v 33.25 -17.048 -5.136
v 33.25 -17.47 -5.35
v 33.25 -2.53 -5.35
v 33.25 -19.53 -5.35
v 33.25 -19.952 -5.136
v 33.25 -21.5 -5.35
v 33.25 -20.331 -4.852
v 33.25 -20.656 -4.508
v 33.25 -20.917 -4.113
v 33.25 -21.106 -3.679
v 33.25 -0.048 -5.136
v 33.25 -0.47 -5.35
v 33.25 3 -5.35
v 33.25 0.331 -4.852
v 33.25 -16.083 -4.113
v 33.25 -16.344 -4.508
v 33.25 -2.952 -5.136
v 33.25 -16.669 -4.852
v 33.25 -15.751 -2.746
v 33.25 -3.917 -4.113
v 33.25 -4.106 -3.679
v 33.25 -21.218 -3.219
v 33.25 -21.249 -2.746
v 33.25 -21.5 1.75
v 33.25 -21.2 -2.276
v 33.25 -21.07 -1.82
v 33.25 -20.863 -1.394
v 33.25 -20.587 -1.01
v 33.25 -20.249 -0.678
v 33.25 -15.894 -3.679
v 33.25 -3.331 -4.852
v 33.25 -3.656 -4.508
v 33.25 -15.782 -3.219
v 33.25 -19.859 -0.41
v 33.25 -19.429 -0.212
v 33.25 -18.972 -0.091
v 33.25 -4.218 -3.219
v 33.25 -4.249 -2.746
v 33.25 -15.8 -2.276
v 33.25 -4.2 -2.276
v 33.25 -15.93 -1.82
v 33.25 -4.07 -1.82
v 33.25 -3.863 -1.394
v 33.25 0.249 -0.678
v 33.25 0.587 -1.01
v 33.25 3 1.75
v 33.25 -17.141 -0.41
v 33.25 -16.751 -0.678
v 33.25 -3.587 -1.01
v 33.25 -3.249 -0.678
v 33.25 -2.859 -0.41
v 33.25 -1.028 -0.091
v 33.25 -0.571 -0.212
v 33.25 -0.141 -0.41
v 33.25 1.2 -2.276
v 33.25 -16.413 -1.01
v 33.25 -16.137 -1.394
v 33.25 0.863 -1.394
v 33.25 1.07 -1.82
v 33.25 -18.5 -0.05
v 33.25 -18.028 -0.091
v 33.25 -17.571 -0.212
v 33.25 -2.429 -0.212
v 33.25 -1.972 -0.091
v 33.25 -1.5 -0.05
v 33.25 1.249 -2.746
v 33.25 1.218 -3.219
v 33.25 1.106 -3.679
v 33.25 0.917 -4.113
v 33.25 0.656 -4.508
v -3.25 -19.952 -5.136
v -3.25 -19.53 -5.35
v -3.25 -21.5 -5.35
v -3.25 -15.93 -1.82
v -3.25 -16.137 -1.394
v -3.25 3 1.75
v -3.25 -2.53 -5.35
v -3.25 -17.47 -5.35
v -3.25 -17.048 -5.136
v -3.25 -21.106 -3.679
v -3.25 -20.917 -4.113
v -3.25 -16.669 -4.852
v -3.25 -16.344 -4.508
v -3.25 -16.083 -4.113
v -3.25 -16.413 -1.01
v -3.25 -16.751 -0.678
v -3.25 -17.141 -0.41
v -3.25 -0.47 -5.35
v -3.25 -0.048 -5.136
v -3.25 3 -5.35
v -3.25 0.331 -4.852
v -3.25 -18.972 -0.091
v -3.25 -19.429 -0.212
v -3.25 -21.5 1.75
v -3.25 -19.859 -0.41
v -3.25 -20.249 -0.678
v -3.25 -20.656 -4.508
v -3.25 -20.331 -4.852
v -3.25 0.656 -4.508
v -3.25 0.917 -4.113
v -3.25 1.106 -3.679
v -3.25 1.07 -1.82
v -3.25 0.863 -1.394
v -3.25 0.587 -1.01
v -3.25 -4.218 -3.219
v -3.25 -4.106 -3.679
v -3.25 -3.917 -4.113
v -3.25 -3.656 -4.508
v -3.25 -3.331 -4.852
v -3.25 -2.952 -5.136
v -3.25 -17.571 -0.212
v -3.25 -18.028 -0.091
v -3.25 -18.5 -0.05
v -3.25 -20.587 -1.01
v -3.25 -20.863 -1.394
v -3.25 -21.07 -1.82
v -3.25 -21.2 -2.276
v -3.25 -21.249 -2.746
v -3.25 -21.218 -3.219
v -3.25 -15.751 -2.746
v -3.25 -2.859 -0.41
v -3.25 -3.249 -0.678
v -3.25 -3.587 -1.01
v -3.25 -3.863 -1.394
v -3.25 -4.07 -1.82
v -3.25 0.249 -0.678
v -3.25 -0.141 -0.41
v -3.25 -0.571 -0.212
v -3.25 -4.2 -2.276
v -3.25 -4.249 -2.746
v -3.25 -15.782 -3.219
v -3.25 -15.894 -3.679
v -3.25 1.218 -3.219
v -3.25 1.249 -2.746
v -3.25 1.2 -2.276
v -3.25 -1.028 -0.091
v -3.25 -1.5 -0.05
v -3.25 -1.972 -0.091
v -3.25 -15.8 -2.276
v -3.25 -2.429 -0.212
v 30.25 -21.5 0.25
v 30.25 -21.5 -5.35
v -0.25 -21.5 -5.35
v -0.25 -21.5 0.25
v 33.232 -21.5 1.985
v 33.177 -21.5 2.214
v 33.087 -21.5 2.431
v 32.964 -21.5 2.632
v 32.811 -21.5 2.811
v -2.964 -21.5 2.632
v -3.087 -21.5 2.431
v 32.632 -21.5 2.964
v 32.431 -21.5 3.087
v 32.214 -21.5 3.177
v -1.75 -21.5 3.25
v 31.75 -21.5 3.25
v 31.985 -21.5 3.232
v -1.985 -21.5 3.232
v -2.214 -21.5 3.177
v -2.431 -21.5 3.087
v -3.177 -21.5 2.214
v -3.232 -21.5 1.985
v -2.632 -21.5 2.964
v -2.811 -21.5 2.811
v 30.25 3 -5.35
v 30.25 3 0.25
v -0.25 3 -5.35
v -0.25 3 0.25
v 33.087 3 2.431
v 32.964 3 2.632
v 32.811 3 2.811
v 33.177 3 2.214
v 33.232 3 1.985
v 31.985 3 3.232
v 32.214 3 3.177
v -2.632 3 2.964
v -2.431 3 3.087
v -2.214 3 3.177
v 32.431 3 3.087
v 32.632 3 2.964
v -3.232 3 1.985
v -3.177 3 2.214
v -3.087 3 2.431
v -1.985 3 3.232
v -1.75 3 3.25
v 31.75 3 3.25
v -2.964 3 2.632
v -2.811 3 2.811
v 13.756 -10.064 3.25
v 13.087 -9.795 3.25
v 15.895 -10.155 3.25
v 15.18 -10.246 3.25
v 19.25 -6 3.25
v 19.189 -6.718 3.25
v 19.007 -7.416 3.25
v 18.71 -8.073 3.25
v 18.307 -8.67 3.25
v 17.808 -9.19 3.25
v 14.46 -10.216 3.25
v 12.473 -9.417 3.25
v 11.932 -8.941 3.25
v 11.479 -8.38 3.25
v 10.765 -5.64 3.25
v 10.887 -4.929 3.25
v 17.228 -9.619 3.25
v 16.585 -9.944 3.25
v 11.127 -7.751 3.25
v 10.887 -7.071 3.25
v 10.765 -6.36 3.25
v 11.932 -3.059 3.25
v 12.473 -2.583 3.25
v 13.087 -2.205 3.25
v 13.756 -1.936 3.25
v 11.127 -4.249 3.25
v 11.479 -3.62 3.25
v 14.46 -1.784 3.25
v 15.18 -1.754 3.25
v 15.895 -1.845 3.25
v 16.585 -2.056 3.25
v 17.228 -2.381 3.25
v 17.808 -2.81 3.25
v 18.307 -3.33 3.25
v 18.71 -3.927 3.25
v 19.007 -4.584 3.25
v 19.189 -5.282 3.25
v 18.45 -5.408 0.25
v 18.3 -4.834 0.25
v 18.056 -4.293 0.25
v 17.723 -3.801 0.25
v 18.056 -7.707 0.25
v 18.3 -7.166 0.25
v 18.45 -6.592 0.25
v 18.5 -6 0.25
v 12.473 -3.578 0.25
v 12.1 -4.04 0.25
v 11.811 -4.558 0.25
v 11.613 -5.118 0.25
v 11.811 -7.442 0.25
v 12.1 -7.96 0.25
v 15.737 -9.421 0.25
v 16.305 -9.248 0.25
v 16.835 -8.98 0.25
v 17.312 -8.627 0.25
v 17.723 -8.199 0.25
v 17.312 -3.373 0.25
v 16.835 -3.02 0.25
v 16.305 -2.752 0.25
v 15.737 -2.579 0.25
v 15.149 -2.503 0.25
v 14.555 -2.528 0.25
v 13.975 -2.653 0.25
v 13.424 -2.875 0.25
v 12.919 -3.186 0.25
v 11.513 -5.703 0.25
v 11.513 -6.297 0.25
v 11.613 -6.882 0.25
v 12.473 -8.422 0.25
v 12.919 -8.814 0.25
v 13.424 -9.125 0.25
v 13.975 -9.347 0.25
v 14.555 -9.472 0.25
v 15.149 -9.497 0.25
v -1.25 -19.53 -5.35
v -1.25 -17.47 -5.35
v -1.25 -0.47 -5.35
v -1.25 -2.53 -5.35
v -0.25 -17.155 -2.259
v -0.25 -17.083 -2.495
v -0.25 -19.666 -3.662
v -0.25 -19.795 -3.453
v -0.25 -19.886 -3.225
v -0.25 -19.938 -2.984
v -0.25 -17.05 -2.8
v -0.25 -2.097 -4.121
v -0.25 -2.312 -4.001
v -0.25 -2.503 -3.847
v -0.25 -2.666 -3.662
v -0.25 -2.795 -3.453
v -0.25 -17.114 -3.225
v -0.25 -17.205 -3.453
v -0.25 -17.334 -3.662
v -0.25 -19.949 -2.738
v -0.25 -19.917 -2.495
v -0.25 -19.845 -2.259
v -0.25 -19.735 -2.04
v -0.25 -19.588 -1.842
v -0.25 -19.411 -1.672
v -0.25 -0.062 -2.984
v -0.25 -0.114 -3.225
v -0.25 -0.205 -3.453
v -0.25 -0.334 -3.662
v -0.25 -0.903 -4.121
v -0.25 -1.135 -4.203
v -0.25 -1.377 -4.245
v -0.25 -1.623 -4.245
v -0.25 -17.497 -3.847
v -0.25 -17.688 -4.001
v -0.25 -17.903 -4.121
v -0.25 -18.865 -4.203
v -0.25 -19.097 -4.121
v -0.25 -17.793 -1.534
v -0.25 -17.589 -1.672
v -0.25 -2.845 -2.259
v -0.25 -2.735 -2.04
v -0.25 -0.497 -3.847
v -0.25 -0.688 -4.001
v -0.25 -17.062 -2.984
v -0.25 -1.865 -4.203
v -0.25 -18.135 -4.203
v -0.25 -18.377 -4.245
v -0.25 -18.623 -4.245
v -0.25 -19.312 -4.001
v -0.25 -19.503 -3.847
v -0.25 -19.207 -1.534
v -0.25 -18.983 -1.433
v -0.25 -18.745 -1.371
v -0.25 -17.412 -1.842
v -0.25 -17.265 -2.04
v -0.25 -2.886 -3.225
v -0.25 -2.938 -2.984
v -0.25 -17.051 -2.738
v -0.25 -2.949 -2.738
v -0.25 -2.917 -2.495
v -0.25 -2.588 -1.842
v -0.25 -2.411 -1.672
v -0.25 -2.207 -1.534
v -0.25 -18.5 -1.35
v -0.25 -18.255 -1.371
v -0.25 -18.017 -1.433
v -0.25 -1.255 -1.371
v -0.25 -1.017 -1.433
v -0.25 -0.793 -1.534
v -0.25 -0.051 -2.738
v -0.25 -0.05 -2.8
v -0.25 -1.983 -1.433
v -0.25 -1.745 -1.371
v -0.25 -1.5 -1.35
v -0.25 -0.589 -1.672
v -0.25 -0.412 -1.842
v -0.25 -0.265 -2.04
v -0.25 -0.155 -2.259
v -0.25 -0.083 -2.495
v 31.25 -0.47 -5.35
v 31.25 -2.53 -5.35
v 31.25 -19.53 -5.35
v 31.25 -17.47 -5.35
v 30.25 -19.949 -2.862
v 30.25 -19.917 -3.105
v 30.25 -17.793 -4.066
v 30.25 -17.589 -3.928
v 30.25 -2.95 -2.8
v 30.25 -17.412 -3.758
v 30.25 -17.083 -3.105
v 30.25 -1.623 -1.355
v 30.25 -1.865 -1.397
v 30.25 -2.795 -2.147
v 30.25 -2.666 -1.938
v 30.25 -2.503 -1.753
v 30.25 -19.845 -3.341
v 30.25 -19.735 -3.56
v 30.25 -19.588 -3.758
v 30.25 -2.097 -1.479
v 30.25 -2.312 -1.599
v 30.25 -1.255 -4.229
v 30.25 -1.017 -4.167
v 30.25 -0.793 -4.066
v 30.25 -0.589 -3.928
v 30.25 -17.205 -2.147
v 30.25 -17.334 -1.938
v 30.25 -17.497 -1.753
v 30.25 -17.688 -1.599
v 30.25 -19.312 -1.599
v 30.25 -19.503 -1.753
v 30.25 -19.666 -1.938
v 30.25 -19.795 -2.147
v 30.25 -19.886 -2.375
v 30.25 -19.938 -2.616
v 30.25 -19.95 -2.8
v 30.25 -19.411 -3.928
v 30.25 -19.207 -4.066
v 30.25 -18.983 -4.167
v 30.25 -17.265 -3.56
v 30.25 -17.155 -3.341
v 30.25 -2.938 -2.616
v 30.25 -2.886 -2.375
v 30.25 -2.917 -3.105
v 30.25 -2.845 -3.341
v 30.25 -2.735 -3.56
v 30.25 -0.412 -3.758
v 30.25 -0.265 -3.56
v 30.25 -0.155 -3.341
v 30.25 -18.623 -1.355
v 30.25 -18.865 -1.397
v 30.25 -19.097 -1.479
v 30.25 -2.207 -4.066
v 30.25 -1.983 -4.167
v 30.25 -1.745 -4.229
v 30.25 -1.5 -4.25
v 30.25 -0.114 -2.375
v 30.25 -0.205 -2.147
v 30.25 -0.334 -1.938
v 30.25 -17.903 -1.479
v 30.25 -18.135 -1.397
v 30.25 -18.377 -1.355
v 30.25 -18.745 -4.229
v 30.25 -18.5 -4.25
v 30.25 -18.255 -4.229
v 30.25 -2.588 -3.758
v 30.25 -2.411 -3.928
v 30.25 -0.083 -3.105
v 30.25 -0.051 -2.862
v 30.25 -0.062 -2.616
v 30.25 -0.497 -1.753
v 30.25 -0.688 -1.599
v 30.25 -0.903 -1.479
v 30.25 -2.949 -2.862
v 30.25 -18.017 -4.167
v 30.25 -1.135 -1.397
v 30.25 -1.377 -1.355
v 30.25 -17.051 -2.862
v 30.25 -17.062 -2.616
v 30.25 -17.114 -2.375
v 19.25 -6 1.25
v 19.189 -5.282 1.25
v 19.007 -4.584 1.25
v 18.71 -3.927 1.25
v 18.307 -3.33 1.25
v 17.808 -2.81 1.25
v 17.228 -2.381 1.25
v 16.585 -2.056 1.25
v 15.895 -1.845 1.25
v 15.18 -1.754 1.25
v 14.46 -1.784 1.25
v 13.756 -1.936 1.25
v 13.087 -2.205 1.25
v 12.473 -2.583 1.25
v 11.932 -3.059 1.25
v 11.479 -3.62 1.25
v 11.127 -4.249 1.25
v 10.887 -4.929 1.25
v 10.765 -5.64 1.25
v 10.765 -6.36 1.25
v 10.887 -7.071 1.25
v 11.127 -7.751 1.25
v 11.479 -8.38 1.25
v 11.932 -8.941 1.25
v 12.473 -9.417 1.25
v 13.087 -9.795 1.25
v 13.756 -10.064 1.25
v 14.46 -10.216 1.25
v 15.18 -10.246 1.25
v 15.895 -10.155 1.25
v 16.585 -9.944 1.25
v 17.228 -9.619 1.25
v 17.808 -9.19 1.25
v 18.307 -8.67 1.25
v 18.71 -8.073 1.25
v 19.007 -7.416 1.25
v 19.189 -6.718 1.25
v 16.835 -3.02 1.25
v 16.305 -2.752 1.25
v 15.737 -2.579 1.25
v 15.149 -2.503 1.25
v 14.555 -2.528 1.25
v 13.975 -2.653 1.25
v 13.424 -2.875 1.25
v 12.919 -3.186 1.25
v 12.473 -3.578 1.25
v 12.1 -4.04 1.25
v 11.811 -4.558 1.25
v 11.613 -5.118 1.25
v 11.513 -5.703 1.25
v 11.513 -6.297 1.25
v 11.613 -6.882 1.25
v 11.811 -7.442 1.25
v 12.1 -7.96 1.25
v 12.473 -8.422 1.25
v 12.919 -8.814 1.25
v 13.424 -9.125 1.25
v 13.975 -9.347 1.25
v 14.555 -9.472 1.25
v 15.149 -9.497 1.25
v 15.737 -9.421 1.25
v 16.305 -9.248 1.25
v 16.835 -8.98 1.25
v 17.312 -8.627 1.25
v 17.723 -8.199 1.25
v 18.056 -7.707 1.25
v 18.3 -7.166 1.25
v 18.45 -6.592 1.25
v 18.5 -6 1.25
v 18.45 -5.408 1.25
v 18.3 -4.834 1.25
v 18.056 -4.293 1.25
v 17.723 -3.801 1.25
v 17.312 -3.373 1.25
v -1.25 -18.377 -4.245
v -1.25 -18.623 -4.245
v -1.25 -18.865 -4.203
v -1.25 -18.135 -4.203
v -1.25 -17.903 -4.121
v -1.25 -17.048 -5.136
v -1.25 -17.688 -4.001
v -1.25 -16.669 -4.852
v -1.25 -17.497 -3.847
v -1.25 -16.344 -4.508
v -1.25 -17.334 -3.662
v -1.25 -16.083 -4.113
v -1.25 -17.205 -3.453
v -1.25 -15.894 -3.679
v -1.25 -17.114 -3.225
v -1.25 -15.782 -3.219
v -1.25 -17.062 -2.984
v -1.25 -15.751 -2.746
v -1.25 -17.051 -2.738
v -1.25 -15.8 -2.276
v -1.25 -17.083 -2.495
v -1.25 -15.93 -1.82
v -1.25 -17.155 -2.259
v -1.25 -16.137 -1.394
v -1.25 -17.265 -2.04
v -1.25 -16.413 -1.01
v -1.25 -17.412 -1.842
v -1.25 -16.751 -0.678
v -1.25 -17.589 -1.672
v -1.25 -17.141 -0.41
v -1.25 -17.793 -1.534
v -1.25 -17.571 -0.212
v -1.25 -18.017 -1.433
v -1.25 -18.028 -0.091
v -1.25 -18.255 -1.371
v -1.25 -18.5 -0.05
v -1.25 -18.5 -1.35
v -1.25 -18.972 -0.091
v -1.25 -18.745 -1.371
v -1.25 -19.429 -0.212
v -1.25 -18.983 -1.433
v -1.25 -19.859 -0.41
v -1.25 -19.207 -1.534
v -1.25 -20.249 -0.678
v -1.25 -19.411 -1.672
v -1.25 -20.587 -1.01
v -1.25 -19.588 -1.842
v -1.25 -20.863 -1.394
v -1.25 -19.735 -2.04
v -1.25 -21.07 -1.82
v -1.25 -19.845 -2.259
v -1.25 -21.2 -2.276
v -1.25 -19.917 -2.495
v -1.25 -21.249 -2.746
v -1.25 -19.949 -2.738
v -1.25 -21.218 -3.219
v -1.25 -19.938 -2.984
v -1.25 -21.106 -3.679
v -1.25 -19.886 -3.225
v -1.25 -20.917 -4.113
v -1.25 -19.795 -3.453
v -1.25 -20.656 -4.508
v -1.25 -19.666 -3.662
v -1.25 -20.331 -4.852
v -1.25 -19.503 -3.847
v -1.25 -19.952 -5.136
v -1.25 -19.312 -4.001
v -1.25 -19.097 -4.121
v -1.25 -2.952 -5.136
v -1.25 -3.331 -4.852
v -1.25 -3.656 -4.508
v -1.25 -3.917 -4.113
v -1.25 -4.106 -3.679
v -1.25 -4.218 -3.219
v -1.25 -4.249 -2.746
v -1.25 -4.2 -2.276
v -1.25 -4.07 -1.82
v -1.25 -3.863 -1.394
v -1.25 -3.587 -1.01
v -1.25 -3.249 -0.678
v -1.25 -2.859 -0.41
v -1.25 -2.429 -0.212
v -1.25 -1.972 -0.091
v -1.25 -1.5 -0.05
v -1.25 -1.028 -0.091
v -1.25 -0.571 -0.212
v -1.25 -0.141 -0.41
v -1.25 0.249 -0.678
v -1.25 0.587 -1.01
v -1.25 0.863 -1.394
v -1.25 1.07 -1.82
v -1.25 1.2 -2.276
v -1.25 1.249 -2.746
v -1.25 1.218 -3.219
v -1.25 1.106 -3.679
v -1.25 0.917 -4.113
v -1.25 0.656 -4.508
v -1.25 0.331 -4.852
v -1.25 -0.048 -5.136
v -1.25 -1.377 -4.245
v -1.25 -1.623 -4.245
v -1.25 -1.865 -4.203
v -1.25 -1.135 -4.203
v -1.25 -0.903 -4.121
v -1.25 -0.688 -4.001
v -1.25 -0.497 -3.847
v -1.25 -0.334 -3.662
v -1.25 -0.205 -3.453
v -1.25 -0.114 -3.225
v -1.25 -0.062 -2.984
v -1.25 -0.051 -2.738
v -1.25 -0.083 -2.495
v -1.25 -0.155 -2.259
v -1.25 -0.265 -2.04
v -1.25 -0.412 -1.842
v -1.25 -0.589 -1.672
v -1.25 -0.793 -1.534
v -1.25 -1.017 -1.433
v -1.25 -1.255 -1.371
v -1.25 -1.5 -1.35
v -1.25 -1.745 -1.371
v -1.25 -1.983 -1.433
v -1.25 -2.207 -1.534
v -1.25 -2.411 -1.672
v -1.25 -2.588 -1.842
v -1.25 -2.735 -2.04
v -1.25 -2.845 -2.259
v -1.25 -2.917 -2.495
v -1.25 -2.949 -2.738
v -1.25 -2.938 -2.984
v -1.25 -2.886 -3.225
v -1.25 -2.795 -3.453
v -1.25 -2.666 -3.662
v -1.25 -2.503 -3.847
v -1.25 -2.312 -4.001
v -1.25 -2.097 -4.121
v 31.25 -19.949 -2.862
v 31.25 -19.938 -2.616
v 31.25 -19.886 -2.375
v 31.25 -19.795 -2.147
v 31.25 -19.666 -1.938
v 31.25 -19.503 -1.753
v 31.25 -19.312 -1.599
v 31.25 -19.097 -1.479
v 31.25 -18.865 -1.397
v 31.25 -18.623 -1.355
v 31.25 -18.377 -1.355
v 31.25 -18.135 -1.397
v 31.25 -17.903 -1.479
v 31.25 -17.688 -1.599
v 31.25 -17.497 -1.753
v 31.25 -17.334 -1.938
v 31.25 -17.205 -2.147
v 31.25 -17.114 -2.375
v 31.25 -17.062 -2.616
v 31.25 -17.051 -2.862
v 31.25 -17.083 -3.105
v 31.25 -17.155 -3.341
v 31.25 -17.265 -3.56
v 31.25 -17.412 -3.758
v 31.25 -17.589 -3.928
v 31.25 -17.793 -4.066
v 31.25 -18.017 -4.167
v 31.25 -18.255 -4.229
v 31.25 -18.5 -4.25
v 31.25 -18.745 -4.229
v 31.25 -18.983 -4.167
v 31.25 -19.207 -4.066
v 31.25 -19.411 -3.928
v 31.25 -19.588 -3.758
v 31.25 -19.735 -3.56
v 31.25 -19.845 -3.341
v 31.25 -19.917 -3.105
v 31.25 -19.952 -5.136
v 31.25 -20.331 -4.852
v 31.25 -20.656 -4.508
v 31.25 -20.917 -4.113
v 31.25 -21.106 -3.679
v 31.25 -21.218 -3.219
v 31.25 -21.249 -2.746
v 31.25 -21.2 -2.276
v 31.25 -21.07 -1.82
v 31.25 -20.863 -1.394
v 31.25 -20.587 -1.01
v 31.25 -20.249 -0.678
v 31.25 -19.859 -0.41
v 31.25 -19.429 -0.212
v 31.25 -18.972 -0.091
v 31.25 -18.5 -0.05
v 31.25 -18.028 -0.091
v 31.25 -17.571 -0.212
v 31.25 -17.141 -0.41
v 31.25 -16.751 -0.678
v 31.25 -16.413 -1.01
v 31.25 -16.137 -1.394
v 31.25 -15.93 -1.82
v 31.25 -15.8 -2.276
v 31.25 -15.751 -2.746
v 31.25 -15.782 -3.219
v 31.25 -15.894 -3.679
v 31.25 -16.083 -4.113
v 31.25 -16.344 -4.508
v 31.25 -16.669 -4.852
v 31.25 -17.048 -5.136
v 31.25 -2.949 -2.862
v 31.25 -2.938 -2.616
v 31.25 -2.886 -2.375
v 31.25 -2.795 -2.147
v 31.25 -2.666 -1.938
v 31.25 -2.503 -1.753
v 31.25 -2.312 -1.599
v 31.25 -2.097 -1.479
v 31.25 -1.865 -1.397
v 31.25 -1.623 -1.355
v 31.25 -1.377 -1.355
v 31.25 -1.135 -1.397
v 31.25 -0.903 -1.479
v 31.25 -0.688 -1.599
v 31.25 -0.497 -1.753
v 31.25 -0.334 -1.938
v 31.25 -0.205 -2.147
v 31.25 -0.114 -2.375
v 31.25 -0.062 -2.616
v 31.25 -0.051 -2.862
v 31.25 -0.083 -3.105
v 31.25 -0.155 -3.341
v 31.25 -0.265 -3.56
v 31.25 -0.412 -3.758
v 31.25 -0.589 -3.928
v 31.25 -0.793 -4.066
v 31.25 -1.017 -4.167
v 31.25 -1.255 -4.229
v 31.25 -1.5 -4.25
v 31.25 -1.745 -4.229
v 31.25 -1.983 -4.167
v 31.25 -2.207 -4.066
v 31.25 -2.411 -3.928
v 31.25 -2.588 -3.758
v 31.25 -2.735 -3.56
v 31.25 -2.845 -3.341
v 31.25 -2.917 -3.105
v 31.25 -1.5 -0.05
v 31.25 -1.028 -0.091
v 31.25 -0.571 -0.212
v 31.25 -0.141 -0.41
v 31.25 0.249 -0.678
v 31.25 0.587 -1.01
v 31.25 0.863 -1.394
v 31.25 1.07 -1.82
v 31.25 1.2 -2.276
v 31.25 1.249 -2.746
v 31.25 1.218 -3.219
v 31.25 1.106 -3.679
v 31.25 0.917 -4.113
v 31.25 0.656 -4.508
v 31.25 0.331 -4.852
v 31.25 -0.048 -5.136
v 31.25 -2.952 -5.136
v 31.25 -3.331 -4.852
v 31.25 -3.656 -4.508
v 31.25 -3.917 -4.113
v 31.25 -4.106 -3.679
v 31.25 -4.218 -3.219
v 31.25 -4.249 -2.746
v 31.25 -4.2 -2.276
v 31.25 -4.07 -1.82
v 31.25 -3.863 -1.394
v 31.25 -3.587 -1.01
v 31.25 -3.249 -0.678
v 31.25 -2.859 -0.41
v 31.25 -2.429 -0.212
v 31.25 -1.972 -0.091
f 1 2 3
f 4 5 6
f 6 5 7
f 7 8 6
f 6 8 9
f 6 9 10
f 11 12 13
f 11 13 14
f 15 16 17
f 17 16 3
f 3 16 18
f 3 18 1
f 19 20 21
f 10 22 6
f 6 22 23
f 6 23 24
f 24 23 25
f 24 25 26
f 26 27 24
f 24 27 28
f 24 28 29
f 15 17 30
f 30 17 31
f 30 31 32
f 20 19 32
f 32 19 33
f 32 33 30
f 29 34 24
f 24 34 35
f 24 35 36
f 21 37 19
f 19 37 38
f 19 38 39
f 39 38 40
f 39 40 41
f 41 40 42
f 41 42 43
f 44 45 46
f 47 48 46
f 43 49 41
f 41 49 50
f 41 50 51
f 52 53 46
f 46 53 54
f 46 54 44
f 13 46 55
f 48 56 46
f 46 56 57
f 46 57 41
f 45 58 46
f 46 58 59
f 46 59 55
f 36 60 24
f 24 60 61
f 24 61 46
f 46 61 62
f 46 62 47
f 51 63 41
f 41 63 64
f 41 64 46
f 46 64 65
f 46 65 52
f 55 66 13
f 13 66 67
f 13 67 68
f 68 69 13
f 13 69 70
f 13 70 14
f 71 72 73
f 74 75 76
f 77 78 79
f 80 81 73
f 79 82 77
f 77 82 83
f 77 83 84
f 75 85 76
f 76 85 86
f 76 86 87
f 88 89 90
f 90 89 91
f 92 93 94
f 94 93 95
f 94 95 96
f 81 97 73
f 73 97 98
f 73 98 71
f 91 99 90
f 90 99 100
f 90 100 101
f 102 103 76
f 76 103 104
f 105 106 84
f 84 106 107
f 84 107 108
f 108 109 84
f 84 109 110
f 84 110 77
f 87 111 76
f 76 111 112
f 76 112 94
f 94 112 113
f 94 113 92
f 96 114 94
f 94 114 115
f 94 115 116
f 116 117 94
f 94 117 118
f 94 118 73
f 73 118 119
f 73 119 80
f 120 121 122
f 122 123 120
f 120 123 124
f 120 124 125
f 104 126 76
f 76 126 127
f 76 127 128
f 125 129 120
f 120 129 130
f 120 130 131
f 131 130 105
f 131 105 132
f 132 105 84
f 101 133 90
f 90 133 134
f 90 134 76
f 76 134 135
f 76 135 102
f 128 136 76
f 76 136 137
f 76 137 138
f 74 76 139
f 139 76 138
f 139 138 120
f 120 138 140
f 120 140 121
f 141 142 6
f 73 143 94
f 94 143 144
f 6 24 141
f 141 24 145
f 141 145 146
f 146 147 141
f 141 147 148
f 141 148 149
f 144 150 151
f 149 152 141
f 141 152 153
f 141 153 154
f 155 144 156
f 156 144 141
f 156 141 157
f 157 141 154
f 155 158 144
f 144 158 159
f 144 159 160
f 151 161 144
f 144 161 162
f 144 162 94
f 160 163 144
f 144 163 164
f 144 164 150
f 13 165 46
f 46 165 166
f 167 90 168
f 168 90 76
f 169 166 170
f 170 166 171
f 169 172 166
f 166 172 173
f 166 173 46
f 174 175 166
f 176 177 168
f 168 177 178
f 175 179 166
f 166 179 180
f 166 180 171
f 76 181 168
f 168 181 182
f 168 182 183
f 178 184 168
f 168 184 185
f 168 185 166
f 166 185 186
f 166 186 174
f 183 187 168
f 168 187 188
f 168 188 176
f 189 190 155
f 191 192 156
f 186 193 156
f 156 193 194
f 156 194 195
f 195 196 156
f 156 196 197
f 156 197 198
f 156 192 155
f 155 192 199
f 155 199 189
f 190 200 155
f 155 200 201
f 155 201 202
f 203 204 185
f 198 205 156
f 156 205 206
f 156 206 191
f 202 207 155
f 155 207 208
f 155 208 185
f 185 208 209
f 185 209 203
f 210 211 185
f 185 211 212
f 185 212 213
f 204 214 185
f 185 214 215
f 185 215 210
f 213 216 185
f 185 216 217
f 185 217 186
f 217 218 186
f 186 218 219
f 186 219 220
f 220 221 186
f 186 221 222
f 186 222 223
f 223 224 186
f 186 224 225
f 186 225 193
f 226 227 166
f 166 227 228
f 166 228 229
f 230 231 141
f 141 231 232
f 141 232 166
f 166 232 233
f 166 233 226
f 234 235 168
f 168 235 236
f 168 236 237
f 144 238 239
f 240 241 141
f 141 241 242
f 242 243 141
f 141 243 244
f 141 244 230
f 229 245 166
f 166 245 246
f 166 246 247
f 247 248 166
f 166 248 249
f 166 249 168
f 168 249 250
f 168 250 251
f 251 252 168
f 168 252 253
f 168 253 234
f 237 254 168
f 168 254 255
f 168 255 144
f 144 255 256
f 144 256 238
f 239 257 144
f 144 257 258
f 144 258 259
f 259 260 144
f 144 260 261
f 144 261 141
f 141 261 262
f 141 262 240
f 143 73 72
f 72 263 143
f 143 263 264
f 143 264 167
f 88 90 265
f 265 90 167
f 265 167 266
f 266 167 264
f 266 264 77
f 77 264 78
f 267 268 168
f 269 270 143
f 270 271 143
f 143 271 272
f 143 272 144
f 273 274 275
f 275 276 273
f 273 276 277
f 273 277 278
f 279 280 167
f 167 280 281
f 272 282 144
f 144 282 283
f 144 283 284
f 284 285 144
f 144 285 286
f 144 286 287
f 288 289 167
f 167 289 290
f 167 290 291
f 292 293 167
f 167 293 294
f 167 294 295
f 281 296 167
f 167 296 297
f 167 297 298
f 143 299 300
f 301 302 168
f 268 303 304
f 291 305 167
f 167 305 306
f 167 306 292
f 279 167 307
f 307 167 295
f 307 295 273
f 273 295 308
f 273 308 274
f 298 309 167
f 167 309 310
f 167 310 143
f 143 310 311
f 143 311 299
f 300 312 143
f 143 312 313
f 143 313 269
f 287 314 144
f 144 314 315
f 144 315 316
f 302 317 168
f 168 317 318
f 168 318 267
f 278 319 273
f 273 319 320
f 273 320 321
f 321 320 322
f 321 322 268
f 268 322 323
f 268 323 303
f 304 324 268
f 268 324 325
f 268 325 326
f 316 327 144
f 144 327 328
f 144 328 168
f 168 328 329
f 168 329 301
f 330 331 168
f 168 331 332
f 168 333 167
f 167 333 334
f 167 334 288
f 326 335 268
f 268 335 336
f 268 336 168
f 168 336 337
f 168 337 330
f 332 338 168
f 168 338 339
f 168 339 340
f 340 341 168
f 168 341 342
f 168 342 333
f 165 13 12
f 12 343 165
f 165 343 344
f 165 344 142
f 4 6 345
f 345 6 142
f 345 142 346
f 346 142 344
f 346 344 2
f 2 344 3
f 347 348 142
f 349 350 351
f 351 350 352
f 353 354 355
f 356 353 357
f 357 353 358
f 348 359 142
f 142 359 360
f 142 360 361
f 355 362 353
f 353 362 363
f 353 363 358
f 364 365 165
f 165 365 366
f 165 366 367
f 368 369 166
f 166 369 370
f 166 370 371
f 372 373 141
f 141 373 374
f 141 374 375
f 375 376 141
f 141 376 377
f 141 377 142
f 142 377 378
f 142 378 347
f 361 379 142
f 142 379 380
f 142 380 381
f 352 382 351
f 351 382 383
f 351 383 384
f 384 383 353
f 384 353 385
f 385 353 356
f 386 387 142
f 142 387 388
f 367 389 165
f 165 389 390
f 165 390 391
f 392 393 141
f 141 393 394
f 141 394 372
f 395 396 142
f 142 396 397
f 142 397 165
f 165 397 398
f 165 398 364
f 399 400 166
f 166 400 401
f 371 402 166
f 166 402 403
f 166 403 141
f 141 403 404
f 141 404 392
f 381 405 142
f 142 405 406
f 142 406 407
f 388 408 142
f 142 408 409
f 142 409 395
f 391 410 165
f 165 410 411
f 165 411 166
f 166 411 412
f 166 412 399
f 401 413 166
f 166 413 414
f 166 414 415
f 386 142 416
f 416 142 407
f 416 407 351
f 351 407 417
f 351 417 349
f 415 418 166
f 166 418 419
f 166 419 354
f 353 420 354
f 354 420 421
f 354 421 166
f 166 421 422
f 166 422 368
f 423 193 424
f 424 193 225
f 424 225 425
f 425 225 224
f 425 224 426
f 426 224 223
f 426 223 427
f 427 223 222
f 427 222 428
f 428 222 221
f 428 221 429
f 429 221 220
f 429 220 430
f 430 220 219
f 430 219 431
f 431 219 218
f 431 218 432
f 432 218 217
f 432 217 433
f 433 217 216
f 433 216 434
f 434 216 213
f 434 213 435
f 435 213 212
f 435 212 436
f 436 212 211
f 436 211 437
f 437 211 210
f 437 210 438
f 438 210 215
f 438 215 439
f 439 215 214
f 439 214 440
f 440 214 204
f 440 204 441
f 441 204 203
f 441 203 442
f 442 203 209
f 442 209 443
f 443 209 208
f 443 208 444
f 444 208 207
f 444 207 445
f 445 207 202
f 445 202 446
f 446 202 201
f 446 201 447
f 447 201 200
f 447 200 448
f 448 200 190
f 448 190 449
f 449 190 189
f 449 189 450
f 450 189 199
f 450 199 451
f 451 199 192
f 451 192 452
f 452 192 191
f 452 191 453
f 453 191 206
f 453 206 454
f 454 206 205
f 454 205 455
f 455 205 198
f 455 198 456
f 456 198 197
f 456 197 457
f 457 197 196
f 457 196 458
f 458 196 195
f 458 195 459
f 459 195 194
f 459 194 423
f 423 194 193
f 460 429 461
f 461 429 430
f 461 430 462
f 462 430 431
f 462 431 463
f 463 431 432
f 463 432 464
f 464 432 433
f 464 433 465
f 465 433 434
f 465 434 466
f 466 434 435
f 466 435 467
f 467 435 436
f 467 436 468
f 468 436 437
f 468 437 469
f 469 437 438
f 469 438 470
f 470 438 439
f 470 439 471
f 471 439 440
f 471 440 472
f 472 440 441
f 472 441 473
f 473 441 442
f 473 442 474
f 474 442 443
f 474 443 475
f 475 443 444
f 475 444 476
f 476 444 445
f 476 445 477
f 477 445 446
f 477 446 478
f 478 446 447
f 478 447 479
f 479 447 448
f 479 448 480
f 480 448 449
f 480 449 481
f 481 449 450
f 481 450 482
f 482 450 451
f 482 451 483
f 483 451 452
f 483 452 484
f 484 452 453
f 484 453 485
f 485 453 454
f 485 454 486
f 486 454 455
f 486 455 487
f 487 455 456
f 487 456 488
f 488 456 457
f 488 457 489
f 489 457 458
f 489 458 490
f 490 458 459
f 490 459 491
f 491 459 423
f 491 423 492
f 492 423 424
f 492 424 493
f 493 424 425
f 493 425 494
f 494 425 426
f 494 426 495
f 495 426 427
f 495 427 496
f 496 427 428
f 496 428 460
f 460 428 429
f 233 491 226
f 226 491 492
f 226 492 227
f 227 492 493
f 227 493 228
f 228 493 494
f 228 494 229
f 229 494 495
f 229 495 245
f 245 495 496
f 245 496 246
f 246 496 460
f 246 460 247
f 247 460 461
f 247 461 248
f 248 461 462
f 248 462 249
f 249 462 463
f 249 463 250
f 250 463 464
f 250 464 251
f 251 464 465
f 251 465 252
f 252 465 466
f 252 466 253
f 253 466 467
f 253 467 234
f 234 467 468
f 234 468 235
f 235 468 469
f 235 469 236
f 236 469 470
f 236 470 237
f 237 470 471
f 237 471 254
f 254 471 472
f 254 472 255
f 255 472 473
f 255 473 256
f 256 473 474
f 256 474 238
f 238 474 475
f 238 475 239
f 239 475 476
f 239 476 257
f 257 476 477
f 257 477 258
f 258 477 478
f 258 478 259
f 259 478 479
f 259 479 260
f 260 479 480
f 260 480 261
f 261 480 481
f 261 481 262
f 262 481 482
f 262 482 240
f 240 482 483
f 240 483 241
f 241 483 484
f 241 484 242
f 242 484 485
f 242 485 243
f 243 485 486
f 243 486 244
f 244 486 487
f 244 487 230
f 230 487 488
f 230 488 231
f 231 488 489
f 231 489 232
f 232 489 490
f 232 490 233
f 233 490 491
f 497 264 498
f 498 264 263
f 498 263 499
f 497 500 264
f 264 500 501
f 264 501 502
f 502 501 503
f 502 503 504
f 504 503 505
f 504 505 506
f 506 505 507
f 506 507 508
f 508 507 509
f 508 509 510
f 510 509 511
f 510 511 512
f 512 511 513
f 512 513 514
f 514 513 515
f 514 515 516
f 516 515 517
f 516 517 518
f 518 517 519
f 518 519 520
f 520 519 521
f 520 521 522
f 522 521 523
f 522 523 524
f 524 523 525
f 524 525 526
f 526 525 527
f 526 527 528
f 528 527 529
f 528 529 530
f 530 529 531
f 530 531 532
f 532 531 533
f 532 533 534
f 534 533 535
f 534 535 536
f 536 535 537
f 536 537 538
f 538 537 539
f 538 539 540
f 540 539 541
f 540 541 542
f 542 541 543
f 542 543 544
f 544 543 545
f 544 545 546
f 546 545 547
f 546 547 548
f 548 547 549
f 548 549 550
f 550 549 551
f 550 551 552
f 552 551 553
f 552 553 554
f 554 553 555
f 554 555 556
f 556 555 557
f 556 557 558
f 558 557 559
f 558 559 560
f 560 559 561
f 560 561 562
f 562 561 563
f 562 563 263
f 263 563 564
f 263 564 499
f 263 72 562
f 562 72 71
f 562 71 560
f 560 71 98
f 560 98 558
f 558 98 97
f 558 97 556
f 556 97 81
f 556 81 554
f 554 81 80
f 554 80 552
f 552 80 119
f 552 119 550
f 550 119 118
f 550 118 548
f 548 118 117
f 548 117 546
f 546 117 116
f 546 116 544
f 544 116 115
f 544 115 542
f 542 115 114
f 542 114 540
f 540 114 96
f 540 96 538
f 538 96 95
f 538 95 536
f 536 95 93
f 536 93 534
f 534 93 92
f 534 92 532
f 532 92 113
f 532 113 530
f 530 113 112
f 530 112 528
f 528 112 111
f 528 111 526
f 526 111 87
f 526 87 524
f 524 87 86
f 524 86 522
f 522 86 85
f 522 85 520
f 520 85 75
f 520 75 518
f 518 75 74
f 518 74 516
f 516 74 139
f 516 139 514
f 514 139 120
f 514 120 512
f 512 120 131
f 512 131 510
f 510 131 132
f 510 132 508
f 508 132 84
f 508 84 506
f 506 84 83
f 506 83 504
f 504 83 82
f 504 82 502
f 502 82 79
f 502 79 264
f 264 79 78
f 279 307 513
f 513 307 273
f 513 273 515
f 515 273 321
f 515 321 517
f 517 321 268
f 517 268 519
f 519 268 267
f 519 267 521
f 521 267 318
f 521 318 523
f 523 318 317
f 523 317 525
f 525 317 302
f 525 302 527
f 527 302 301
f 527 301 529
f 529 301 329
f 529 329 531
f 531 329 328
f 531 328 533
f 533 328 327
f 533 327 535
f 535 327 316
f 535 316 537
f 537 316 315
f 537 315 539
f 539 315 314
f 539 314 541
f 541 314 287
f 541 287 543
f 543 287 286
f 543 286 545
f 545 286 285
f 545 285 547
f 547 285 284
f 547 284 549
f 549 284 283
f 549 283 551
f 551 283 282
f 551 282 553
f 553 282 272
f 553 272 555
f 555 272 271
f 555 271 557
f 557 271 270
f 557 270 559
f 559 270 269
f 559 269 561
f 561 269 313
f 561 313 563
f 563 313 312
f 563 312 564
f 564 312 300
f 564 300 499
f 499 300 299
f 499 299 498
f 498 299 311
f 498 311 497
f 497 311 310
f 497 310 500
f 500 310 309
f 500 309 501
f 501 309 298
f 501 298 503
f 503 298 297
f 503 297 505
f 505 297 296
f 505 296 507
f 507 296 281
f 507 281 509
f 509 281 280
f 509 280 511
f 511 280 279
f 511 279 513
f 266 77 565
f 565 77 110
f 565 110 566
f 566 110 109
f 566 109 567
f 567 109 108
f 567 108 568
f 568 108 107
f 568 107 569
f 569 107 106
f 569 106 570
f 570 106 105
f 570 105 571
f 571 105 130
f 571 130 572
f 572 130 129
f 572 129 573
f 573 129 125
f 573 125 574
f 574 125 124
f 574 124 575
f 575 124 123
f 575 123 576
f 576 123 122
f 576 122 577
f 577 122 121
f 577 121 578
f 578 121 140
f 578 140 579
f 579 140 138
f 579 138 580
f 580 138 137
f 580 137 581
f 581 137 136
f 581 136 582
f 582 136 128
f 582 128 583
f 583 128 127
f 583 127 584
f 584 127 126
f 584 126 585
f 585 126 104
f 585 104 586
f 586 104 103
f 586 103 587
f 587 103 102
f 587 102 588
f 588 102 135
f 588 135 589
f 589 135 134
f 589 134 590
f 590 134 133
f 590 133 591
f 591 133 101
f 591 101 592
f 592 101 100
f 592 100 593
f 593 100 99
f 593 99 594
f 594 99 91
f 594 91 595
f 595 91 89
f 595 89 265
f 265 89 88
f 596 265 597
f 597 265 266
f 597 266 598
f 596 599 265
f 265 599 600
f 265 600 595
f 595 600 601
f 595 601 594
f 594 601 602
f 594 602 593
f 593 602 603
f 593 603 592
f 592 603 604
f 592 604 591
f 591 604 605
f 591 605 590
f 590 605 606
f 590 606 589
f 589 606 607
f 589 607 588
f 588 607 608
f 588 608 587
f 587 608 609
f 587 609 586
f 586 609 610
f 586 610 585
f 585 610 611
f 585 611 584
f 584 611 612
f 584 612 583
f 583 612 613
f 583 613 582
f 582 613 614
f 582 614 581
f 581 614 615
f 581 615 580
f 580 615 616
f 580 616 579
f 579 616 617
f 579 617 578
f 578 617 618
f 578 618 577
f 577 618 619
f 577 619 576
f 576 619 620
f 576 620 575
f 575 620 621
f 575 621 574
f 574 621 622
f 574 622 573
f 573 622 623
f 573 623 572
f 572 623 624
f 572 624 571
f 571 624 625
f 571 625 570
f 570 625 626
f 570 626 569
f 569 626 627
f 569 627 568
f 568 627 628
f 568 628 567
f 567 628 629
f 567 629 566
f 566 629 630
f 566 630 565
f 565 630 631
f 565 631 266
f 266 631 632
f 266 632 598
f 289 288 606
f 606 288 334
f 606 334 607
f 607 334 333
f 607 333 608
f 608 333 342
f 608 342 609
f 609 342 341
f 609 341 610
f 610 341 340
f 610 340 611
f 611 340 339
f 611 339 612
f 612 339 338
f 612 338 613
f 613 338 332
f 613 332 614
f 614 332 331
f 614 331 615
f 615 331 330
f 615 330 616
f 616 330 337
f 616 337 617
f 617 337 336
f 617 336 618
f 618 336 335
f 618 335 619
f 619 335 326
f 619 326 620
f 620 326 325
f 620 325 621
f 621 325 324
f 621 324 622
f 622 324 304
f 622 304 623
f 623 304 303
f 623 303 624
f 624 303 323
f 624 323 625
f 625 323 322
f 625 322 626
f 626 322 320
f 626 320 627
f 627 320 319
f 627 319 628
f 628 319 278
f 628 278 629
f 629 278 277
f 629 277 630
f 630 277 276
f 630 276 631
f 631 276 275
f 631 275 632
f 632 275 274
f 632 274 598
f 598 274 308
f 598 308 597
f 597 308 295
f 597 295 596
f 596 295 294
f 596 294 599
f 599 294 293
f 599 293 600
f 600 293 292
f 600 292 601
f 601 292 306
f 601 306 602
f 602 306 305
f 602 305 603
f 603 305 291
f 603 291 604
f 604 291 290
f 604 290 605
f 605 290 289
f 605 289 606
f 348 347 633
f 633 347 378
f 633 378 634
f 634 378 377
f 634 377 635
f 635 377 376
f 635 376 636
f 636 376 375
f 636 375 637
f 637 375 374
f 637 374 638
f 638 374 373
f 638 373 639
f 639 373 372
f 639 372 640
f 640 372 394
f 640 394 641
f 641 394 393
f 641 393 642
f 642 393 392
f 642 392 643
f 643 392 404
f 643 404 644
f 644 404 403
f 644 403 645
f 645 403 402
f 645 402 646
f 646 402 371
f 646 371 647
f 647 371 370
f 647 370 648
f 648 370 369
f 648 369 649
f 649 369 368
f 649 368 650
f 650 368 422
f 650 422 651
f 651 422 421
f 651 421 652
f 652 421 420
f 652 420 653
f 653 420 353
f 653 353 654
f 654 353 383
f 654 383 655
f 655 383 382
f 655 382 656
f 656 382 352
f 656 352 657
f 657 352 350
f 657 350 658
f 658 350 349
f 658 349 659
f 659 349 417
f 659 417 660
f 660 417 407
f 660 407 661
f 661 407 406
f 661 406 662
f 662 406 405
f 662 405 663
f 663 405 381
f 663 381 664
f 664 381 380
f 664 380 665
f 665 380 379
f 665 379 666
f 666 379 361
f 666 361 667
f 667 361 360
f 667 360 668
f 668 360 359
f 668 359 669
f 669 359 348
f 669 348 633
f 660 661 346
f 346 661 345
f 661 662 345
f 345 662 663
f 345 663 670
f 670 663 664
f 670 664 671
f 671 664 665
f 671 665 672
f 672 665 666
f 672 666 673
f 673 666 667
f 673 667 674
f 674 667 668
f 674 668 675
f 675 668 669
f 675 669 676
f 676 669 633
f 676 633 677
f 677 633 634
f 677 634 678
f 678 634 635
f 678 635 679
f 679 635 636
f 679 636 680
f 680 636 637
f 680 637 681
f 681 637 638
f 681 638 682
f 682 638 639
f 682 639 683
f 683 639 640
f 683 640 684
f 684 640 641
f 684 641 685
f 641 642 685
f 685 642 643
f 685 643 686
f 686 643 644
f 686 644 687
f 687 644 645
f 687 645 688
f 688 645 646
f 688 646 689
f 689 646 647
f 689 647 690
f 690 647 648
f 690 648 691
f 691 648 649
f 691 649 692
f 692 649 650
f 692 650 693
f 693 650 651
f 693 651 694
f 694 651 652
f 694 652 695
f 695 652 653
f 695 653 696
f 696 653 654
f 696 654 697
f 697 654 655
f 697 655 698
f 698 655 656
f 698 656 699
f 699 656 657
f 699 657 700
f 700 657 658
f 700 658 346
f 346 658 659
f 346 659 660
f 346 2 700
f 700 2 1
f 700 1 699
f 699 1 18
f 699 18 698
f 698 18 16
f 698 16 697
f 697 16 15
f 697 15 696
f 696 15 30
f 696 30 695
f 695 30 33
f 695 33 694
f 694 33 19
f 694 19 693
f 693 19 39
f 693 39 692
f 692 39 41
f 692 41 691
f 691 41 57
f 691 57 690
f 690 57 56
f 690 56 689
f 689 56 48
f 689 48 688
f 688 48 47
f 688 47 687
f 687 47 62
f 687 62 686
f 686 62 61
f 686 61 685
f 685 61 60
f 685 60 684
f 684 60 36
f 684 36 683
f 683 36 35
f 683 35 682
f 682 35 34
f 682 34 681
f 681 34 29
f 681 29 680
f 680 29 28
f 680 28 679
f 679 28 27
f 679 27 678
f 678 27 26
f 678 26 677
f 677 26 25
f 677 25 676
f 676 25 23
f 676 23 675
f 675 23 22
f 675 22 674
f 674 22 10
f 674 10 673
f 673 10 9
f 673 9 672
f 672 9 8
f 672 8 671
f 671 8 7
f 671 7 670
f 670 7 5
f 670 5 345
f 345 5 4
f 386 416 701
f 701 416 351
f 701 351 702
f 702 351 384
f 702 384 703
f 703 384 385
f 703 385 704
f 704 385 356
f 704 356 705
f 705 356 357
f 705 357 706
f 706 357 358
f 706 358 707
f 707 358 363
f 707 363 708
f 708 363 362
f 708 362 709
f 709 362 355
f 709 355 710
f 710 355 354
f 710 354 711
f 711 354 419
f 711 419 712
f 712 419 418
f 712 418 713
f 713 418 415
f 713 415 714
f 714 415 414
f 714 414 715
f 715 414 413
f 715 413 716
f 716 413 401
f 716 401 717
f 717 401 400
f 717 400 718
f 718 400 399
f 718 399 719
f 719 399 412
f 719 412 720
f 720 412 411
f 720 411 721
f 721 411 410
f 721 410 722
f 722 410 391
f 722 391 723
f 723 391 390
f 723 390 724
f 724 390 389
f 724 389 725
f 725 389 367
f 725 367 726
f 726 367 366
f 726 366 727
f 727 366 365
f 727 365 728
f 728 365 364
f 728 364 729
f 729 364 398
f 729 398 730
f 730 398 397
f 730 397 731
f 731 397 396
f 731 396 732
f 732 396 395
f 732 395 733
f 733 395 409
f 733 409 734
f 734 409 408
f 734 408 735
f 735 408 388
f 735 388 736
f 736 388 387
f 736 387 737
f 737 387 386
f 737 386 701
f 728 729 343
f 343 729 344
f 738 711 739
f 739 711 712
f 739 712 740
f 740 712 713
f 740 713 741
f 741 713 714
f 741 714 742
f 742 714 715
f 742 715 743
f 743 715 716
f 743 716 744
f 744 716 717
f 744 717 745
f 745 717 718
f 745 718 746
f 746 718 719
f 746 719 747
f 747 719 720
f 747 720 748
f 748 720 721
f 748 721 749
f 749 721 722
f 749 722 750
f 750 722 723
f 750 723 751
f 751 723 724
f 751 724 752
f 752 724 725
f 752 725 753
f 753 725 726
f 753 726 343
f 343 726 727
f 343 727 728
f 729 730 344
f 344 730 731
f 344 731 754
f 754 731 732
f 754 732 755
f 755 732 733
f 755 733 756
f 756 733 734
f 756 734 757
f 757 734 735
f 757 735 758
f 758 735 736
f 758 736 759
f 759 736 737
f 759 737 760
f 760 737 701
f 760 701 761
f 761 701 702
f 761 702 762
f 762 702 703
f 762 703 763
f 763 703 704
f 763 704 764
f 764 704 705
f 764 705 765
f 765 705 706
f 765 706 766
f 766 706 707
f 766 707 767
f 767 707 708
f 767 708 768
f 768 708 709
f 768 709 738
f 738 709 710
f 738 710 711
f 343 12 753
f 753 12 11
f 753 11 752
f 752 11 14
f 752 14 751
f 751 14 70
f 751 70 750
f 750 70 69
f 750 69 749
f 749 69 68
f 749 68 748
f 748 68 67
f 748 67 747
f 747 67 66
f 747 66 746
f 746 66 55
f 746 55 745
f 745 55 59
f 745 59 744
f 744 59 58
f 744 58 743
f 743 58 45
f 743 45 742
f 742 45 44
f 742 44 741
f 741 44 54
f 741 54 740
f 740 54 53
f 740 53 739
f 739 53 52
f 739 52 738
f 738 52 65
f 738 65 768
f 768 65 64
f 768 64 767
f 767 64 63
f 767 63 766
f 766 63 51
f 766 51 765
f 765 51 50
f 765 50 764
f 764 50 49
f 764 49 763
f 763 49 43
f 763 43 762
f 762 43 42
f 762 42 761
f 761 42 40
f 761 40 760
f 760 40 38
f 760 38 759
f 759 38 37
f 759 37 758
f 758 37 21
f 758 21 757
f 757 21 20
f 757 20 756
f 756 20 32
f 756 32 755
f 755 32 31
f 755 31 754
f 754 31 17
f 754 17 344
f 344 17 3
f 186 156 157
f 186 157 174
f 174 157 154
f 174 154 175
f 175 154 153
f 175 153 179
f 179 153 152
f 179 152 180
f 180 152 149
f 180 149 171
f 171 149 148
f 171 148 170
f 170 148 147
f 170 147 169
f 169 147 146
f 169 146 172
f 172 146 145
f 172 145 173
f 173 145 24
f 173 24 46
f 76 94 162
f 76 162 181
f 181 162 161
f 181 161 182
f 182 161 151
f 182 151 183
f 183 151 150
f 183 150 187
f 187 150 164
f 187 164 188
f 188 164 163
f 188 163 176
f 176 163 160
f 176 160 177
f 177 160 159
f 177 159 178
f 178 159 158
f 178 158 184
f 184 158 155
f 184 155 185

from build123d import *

# Parameters (mm, degrees)
RESSALTO_EXTRUS_O1_START         = 0.25
ESBO_O2_W                        = 30.5
ESBO_O2_H                        = 24.5
RESSALTO_EXTRUS_O1_DEPTH         = 3
ESBO_O3_W                        = 8.6
ESBO_O3_H                        = 24.5
RESSALTO_EXTRUS_O2_DEPTH         = 3
ESBO_O5_R                        = 4.25
CORTE_EXTRUS_O1_DEPTH            = 2
ESBO_O12_R                       = 3.5
CORTE_EXTRUS_O3_DEPTH            = 41.141904539
CBORE_FOR_M2_5_SHCS1_D           = 2.9
CBORE_FOR_M2_5_SHCS1_DEPTH       = 3
CBORE_FOR_M2_5_SHCS1_CBORE_D     = 5.5
CBORE_FOR_M2_5_SHCS1_CBORE_DEPTH = 2
FILETE1_R                        = 1.5


with BuildPart() as part:
    # Esboço2 → Ressalto-extrusão1 (new body)
    with BuildSketch(Plane.XY.offset(RESSALTO_EXTRUS_O1_START)):
        with Locations((15, -9.25)):
            Rectangle(ESBO_O2_W, ESBO_O2_H)
    extrude(amount=RESSALTO_EXTRUS_O1_DEPTH)

    # Esboço3 → Ressalto-extrusão2 (add)
    with BuildSketch(Plane.ZY.offset(0.25)):
        with Locations((-1.05, -9.25)):
            Rectangle(ESBO_O3_W, ESBO_O3_H)
    ressalto_extrus_o2 = extrude(amount=RESSALTO_EXTRUS_O2_DEPTH)

    # Espelhar1: Ressalto-extrusão2 across plane
    add(ressalto_extrus_o2.mirror(Plane.ZY.offset(-15)))

    # Esboço5 → Corte-extrusão1 (cut)
    with BuildSketch(Plane.XY.offset(3.25)):
        with Locations((15, -6)):
            Circle(ESBO_O5_R)
    extrude(amount=-CORTE_EXTRUS_O1_DEPTH, mode=Mode.SUBTRACT)

    # Esboço12 → Corte-extrusão3 (cut, through all)
    with BuildSketch(Plane.XY.offset(1.25)):
        with Locations((15, -6)):
            Circle(ESBO_O12_R)
    extrude(amount=-CORTE_EXTRUS_O3_DEPTH, mode=Mode.SUBTRACT)

    # CBORE for M2.5 SHCS1
    with Locations(Plane.ZY.offset(3.25)):
        with Locations((-2.8, -1.5), (-2.8, -18.5)):
            cbore_for_m2_5_shcs1 = CounterBoreHole(CBORE_FOR_M2_5_SHCS1_D / 2, CBORE_FOR_M2_5_SHCS1_CBORE_D / 2, CBORE_FOR_M2_5_SHCS1_CBORE_DEPTH, depth=CBORE_FOR_M2_5_SHCS1_DEPTH)

    # Mirror1: CBORE for M2.5 SHCS1 across plane
    add(cbore_for_m2_5_shcs1.mirror(Plane.ZY.offset(-15)), mode=Mode.SUBTRACT)

    # Filete1
    filete1_edges = [part.edges().sort_by_distance(p)[0] for p in [
        (-3.25, -9.25, 3.25),
        (33.25, -9.25, 3.25),
    ]]
    fillet(filete1_edges, radius=FILETE1_R)


solid = part.part
